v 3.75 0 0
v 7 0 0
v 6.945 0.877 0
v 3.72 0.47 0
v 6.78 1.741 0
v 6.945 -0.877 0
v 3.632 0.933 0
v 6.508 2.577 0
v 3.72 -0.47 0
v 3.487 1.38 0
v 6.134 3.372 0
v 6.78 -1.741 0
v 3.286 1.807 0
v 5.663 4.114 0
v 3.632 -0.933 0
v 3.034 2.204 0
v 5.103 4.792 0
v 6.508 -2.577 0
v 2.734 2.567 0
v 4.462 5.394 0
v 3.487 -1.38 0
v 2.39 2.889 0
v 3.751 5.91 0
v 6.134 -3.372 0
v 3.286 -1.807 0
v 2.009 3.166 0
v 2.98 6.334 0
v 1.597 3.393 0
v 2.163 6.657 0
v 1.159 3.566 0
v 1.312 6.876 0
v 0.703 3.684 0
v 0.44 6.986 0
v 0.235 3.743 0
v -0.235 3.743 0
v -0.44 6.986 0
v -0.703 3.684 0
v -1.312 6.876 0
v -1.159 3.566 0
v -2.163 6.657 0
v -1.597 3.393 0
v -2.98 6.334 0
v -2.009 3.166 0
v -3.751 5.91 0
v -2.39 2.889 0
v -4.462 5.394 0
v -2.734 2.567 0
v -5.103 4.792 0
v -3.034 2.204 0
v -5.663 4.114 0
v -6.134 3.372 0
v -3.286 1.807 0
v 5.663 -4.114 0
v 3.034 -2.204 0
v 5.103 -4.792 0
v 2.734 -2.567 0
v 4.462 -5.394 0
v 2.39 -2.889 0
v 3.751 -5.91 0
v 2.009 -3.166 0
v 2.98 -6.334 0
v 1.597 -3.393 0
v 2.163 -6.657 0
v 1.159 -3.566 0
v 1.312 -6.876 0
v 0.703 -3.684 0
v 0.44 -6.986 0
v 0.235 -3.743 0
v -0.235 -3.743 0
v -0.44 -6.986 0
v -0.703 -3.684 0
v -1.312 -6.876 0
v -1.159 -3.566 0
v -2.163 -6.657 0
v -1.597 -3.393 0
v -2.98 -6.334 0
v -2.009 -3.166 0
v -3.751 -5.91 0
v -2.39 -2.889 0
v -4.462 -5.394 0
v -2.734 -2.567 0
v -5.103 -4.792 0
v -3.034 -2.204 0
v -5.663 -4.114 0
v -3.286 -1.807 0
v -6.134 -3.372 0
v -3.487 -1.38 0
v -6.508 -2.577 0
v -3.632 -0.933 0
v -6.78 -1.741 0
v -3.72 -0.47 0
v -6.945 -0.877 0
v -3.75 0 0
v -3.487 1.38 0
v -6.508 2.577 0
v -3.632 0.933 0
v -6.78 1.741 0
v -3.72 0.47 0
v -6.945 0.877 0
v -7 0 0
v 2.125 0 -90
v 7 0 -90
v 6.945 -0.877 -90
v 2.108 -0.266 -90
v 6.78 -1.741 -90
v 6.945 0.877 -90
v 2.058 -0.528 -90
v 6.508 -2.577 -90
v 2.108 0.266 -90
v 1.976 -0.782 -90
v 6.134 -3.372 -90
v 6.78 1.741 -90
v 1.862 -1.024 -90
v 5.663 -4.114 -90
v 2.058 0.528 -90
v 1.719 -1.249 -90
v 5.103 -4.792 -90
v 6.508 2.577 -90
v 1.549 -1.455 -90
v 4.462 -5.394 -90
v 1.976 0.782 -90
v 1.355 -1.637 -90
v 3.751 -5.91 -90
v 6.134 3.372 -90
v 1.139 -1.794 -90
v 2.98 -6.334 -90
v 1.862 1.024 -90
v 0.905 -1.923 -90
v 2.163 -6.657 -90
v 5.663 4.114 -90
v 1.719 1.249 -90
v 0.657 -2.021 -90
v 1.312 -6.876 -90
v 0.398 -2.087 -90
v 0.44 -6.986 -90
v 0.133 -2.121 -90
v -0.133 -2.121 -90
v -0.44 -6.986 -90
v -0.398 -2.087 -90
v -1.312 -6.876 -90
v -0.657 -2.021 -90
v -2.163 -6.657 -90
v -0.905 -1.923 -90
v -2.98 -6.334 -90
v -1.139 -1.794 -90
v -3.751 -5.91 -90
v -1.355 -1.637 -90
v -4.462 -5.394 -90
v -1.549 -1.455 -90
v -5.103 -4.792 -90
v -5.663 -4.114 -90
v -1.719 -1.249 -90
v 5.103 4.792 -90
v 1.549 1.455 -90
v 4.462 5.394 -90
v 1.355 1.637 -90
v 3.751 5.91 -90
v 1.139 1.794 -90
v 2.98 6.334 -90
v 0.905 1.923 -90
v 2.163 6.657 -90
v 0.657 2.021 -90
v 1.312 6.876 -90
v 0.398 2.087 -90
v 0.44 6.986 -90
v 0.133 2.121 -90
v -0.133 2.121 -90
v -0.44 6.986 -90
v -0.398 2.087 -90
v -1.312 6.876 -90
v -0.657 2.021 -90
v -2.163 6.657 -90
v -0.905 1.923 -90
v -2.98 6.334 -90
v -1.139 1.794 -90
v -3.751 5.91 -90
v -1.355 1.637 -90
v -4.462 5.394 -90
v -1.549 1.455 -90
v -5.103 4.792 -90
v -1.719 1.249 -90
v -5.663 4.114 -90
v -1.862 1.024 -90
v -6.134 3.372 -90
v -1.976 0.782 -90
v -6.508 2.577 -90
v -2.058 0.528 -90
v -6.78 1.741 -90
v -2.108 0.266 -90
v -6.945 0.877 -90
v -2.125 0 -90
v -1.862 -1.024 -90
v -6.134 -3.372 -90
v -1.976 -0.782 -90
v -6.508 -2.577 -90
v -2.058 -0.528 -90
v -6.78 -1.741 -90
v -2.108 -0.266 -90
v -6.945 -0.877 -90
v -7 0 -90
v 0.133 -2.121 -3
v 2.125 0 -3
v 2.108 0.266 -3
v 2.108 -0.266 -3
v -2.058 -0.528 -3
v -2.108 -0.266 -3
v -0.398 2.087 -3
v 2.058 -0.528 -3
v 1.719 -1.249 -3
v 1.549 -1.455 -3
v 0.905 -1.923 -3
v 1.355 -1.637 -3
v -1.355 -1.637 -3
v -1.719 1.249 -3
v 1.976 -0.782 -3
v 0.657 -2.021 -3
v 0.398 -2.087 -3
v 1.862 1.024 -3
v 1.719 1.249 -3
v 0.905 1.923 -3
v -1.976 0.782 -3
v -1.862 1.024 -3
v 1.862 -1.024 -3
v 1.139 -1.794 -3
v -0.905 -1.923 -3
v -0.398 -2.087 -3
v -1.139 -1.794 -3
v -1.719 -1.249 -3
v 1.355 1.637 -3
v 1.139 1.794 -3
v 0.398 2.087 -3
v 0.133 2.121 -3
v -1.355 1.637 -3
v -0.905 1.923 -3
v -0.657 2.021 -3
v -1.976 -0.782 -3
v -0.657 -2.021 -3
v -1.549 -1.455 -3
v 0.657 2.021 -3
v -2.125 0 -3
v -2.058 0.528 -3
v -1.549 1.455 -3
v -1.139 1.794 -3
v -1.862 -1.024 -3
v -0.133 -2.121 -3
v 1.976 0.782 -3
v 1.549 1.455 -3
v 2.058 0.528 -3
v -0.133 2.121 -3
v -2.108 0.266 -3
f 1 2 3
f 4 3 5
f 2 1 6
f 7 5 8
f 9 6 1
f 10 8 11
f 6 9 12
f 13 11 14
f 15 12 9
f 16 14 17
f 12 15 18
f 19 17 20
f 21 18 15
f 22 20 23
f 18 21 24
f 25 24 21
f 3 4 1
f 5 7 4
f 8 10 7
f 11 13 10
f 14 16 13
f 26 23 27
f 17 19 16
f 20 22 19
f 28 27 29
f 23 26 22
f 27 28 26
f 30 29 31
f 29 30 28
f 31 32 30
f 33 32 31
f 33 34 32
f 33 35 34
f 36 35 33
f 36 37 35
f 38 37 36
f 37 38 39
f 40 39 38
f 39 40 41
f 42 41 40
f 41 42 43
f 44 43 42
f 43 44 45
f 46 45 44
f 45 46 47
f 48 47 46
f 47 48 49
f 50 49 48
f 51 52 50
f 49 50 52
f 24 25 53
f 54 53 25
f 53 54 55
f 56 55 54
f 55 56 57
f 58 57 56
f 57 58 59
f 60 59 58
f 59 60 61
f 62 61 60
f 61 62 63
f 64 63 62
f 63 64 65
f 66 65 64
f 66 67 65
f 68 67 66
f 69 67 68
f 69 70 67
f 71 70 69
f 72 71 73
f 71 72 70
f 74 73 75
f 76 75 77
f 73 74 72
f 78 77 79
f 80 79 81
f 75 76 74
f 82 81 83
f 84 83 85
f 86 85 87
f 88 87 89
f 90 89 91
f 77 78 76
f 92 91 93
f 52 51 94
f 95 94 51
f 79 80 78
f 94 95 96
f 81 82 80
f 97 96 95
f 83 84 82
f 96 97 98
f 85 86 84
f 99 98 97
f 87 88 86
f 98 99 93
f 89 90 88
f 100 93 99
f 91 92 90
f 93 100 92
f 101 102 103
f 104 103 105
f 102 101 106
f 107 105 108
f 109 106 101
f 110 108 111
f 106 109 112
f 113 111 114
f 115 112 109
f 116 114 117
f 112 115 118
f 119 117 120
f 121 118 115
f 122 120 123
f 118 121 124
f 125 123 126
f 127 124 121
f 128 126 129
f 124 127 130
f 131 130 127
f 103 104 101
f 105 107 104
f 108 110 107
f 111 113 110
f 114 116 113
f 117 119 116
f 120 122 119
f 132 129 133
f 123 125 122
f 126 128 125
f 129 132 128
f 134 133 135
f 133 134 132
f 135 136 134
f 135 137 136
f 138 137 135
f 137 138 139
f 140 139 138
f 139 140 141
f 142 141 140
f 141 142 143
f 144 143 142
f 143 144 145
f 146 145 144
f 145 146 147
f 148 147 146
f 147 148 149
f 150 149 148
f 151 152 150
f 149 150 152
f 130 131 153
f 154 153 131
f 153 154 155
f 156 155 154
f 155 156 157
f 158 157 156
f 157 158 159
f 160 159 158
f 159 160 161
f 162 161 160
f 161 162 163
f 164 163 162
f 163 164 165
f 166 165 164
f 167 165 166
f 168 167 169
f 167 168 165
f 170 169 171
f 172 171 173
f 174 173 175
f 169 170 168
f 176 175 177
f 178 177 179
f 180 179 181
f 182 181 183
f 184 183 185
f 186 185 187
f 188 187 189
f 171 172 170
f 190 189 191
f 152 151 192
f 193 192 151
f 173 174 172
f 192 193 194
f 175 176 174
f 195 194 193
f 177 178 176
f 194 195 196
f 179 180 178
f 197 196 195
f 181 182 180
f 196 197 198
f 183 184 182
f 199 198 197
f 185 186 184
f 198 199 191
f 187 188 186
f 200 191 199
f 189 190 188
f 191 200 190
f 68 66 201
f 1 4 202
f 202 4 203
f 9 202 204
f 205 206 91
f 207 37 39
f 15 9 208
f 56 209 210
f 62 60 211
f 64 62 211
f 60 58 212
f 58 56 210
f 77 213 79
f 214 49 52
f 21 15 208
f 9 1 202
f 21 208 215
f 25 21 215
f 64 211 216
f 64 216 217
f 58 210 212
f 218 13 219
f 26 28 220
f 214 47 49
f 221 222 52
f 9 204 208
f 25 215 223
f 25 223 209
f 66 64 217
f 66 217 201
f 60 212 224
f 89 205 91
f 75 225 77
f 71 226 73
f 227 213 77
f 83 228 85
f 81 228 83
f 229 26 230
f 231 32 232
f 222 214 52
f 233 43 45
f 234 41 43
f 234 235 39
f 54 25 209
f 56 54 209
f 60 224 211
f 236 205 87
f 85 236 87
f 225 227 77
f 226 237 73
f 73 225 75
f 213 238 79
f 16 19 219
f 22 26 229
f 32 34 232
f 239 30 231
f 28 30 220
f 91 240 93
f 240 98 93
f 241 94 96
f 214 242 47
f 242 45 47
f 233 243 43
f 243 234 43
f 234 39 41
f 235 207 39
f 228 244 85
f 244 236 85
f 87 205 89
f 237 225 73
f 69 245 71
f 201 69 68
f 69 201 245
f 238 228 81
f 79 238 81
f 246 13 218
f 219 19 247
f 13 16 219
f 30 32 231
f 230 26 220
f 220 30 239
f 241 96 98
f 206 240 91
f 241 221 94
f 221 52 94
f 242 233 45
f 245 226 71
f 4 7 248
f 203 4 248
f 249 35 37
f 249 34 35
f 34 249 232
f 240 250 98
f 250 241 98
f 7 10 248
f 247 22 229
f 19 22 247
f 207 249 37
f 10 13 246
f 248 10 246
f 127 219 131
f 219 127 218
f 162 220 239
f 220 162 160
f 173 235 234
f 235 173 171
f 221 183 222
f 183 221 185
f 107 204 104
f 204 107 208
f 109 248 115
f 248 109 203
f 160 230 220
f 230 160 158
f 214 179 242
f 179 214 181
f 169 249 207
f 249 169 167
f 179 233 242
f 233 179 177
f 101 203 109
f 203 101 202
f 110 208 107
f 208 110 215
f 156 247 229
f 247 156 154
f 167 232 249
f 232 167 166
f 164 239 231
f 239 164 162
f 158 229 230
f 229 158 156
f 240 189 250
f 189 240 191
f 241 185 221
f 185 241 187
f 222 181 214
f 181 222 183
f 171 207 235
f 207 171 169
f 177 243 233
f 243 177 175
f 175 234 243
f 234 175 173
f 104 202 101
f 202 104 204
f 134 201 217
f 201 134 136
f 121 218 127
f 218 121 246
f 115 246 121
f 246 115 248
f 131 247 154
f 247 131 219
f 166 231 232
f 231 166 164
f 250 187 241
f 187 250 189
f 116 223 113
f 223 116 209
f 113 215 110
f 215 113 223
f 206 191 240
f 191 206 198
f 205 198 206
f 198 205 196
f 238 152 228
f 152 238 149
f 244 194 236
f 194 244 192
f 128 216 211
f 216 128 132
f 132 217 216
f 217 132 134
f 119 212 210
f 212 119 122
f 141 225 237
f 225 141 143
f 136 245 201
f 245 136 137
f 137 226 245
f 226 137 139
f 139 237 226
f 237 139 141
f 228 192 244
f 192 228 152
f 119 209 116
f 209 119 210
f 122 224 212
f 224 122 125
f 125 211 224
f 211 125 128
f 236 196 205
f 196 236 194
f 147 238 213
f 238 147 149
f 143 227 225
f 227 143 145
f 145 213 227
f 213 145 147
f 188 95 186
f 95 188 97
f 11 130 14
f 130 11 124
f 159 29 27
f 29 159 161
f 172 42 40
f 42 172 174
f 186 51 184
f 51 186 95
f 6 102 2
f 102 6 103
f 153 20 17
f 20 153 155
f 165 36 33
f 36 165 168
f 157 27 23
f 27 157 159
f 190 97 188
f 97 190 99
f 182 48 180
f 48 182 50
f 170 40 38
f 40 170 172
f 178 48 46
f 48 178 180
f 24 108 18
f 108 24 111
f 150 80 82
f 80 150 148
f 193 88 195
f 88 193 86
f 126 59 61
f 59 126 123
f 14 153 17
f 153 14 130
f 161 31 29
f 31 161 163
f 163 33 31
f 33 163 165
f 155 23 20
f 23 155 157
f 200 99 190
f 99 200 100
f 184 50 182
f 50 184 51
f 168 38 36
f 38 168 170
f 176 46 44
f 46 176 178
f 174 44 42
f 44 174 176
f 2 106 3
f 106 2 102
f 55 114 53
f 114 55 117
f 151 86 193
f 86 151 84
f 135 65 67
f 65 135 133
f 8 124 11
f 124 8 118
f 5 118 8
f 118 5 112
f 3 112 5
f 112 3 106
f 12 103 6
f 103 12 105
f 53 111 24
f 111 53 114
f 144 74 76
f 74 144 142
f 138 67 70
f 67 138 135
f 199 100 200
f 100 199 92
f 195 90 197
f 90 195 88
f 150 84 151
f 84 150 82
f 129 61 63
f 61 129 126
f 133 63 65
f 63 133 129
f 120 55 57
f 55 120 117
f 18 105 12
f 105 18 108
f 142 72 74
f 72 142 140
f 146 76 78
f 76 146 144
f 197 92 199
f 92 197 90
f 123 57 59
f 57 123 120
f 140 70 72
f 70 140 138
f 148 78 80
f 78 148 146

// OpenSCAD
$fn = 50;


difference() {
	union() {
		translate(v = [0, 0, -90.0000000000]) {
			cylinder(h = 90, r = 7.0000000000);
		}
		cylinder(h = 0, r = 17.0000000000);
	}
	union() {
		translate(v = [0, 0, 0]) {
			rotate(a = [0, 0, 0]) {
				difference() {
					union() {
						#translate(v = [0, 0, -90.0000000000]) {
							cylinder(h = 90, r = 2.0000000000);
						}
						#translate(v = [0, 0, -3]) {
							cylinder(h = 3, r1 = 2.1250000000, r2 = 3.7500000000);
						}
						#translate(v = [0, 0, -90.0000000000]) {
							cylinder(h = 90, r = 2.1250000000);
						}
						#translate(v = [0, 0, -90.0000000000]) {
							cylinder(h = 90, r = 2.0000000000);
						}
					}
					union();
				}
			}
		}
	}
}
